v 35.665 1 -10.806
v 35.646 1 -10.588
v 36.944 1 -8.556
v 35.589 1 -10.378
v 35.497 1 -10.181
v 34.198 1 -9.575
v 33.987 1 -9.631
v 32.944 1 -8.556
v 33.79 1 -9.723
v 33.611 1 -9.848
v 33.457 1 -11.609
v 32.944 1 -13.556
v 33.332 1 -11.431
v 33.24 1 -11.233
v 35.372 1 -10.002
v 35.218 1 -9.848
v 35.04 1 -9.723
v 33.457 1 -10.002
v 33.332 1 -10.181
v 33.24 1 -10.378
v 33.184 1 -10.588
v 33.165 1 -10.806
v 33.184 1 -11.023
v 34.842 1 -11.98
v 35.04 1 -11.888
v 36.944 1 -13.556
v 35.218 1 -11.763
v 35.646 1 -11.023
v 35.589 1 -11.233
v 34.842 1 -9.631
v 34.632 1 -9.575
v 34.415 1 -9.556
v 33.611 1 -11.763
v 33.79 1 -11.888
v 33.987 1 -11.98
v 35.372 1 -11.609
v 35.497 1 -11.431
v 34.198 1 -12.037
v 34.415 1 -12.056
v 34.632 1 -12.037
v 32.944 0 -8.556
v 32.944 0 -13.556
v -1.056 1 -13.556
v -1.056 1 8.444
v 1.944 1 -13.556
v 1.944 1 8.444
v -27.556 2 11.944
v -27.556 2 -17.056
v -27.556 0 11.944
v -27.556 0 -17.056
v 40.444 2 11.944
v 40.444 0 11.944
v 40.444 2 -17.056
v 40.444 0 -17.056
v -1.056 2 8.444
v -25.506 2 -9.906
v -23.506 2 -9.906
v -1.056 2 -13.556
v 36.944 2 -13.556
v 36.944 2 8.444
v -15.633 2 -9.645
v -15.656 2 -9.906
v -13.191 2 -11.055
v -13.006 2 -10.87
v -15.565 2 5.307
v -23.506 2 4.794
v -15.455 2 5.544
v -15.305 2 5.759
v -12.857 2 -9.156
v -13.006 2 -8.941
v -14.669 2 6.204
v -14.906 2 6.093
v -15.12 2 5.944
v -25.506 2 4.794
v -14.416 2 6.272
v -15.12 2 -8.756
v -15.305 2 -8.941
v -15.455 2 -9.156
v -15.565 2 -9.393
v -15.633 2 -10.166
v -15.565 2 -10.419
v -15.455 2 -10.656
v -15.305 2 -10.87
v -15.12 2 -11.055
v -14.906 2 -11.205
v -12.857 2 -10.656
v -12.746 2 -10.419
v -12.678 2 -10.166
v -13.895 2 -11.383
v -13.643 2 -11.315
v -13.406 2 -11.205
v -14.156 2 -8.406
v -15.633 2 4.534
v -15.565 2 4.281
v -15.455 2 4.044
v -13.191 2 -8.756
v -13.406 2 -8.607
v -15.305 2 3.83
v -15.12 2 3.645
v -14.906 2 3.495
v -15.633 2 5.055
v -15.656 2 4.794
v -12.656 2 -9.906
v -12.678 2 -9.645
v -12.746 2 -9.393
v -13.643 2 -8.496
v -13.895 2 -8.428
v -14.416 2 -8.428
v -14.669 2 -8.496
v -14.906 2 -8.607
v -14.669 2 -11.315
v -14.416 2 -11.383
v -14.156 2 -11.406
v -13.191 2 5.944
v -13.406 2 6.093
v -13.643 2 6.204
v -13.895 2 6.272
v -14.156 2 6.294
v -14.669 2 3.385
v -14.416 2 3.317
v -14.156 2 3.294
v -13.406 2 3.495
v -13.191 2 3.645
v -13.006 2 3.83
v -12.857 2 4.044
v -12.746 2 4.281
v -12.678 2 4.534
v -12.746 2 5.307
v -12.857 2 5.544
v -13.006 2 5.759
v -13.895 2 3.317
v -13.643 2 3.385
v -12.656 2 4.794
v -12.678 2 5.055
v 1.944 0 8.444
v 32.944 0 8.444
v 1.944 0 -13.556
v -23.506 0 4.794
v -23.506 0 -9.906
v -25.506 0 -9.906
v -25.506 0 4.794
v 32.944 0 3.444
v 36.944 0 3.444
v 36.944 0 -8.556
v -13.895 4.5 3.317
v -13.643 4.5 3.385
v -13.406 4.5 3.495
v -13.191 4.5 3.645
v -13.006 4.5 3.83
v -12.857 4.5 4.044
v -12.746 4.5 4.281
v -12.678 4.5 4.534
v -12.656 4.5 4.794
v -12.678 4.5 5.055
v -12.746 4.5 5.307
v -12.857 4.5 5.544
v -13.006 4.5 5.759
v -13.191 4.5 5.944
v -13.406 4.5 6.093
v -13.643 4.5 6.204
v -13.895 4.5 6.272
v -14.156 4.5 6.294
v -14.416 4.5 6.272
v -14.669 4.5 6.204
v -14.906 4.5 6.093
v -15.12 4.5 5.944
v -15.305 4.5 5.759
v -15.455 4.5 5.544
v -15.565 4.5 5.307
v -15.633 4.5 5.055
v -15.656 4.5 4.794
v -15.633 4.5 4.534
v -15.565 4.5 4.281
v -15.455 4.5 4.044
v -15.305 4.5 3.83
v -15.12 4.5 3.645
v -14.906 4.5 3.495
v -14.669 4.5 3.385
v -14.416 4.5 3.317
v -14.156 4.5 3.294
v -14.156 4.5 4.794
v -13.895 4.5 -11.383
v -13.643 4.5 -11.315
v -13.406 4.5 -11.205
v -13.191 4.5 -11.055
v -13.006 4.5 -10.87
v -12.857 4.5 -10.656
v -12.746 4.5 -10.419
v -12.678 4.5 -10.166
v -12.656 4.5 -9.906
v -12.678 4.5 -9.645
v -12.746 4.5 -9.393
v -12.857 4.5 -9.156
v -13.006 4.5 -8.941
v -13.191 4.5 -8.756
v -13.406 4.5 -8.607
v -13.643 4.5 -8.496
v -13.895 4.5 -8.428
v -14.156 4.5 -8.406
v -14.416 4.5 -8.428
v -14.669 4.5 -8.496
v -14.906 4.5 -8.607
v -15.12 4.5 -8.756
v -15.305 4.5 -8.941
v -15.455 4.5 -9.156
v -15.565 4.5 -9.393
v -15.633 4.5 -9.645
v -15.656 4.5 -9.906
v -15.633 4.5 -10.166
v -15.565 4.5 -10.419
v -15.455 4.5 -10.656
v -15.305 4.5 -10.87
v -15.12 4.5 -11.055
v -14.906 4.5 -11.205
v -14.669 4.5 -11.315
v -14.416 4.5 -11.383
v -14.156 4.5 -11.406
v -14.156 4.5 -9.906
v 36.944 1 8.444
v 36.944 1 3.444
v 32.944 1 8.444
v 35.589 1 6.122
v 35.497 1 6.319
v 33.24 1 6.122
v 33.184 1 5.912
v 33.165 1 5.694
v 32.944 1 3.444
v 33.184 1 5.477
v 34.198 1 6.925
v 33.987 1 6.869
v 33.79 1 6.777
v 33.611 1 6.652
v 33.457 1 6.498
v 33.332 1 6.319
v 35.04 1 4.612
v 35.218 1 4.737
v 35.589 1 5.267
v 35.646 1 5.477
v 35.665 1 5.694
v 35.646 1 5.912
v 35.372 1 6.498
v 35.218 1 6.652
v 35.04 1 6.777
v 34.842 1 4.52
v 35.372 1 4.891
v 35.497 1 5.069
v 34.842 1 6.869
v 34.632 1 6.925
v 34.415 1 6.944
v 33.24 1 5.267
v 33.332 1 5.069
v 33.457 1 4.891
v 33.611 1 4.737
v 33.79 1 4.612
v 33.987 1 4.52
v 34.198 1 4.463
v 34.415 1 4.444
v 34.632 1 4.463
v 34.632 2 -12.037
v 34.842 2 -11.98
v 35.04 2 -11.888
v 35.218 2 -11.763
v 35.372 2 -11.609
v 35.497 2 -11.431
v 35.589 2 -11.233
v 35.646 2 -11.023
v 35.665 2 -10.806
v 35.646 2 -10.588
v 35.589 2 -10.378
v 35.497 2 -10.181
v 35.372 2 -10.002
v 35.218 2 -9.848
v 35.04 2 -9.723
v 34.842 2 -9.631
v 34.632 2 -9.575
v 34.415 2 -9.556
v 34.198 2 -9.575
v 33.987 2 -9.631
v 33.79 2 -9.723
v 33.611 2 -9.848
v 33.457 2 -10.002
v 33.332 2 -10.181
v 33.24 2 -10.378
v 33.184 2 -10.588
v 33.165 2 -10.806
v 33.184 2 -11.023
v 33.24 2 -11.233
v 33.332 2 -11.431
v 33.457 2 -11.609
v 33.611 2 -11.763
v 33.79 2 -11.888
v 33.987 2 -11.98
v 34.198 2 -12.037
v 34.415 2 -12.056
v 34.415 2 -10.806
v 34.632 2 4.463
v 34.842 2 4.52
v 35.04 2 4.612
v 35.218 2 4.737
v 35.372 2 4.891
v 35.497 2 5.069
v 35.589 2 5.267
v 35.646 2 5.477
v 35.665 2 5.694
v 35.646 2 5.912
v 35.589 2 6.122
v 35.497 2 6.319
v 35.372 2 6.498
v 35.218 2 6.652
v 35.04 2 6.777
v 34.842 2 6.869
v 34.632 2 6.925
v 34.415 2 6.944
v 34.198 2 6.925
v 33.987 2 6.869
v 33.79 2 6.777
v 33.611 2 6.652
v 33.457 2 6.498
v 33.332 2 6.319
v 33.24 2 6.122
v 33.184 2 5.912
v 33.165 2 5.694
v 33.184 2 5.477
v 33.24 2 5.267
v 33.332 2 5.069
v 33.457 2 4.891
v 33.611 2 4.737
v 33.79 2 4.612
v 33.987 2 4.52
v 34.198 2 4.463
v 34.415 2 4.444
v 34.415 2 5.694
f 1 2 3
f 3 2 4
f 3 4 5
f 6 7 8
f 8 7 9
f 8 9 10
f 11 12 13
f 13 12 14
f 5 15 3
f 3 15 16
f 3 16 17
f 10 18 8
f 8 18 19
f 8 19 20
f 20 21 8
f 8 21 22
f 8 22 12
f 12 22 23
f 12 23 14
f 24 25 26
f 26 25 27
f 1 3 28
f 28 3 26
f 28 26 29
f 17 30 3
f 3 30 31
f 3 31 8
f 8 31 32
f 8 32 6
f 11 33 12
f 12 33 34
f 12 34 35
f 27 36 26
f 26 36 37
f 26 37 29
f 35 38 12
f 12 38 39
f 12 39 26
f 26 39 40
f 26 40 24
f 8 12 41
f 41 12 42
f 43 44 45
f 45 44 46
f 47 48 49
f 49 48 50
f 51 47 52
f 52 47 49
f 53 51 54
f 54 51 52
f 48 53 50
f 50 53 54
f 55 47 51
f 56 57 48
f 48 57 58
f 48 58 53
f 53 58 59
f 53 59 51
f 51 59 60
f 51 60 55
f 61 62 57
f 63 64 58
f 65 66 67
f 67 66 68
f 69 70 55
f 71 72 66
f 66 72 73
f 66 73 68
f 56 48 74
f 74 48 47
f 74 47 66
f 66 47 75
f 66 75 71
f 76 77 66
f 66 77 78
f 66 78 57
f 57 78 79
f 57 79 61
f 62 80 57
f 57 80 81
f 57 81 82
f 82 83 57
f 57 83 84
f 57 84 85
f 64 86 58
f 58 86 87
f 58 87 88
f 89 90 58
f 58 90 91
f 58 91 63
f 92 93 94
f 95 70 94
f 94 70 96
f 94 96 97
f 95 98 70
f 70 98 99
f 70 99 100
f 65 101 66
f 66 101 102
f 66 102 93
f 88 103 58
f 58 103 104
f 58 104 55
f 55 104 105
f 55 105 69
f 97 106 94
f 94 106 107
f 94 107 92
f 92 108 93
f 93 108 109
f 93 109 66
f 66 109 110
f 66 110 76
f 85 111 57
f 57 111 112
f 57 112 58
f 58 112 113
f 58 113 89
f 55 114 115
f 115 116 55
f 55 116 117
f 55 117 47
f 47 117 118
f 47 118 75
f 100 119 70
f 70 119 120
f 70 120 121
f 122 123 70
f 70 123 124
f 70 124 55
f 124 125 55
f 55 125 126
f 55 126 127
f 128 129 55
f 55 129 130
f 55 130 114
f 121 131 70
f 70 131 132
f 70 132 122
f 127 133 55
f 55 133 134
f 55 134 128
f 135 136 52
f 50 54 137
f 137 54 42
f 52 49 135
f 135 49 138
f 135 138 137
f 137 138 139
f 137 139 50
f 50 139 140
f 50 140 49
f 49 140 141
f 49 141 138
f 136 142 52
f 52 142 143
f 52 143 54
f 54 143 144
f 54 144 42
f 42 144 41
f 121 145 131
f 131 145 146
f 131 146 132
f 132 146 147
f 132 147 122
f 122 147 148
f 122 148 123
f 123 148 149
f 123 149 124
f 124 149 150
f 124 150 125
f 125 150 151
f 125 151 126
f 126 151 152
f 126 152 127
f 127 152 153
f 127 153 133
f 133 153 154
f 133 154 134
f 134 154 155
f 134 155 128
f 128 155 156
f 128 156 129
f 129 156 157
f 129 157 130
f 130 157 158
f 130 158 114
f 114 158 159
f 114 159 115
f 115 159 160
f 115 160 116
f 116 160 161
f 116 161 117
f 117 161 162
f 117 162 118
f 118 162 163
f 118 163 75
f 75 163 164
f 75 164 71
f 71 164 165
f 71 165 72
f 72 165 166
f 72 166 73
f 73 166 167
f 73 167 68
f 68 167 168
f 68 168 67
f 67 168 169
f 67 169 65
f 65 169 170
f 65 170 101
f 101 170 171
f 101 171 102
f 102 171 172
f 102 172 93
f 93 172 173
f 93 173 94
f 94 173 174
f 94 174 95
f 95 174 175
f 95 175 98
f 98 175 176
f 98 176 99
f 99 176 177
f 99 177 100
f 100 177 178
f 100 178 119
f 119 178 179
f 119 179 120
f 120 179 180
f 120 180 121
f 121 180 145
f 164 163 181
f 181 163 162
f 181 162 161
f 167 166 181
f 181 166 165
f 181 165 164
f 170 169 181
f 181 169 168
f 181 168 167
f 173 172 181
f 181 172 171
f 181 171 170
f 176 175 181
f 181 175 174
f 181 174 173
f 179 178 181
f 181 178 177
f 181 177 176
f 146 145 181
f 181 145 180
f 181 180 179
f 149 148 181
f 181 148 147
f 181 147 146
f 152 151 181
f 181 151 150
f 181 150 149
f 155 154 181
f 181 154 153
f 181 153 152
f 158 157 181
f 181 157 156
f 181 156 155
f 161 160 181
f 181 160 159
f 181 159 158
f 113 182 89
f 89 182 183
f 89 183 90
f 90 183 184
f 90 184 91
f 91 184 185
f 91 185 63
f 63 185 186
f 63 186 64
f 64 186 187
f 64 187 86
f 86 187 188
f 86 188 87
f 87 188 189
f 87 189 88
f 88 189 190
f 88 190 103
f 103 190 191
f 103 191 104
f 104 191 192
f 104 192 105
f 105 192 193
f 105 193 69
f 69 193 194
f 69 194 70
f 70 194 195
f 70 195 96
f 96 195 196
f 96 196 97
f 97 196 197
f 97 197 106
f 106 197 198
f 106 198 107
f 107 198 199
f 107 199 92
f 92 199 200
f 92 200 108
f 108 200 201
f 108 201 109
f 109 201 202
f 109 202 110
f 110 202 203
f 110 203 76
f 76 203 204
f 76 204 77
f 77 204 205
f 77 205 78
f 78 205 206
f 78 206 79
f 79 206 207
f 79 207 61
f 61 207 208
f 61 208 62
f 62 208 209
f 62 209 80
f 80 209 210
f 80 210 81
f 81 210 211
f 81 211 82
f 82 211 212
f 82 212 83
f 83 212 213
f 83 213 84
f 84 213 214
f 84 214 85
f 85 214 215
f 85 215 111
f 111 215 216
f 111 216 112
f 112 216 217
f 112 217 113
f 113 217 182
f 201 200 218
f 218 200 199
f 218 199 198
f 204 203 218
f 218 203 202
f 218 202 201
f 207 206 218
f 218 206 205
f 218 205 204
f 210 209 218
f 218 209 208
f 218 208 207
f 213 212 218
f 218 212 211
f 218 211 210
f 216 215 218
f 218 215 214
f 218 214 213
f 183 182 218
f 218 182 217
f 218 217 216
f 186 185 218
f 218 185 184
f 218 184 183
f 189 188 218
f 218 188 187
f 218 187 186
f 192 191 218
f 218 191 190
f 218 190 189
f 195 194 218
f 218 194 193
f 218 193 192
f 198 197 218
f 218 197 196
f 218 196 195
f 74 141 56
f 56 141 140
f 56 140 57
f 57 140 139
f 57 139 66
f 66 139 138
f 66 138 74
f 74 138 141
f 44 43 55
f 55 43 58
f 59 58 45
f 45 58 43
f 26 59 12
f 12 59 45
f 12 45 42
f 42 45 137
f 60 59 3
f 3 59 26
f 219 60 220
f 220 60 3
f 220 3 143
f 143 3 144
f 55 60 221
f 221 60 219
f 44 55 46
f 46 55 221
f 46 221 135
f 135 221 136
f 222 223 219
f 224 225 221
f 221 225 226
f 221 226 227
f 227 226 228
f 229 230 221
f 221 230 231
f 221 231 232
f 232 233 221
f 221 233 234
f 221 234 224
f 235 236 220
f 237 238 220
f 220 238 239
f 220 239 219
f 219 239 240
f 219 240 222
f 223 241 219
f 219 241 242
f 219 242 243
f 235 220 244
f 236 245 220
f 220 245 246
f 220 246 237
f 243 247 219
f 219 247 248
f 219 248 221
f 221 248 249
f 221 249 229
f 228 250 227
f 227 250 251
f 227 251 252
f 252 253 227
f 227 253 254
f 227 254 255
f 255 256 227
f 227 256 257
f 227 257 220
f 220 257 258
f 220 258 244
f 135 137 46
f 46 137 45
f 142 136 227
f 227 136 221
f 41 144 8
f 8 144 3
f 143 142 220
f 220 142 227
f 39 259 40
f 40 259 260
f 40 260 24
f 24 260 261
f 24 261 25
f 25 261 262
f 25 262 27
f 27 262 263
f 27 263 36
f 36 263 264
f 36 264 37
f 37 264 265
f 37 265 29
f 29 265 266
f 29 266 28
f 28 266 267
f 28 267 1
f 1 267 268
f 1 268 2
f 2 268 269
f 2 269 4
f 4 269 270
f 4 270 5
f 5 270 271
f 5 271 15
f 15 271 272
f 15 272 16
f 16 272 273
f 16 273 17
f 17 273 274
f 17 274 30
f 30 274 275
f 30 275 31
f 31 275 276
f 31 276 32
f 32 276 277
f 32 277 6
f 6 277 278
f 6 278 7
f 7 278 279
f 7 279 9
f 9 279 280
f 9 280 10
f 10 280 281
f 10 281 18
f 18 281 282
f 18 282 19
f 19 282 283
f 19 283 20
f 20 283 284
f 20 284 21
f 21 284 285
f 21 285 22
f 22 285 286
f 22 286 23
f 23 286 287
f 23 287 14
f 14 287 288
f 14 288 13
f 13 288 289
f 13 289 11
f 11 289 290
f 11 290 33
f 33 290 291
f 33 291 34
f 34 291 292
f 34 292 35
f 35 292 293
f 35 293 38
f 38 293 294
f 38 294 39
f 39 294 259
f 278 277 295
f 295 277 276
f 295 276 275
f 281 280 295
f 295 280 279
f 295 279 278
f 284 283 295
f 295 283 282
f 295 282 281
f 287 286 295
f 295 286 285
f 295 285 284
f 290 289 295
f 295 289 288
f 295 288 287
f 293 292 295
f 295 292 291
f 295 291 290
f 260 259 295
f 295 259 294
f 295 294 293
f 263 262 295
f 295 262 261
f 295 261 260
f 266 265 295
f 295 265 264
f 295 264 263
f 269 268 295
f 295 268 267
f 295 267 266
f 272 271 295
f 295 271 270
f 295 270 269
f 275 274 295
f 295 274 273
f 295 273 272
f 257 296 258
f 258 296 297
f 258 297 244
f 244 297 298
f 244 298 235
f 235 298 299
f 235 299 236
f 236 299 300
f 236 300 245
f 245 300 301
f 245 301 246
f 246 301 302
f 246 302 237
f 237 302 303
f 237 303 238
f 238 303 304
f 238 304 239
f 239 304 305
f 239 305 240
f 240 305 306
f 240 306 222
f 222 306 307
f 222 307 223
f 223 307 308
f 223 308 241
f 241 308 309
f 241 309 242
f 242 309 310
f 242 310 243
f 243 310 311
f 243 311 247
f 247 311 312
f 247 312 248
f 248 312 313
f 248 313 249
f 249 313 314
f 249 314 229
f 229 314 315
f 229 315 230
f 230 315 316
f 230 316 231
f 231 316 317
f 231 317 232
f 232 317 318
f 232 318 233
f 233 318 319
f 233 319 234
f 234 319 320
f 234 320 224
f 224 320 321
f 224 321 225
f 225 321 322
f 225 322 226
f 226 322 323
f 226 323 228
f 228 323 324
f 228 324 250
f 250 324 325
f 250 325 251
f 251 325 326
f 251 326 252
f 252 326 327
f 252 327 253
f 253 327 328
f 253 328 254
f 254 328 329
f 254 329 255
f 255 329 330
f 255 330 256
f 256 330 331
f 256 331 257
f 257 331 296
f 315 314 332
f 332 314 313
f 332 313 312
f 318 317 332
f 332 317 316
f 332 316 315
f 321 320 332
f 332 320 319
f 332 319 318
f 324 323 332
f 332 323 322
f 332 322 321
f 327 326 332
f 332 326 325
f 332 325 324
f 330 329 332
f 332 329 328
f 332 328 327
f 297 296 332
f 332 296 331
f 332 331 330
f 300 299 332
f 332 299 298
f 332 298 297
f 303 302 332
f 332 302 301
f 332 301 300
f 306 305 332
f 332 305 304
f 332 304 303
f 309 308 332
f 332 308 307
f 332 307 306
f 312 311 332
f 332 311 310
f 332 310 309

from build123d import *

# Parameters (mm, degrees)
SKETCH1_W             = 68
SKETCH1_H             = 29
BASE_DEPTH            = 2
SKETCH2_R             = 1.5
LEFT_PEG_DEPTH        = 2.5
SKETCH3_R             = 1.5
RIGHT_PEG_DEPTH       = 2.5
SKETCH4_W             = 2
SKETCH4_H             = 14.7
ACCEL_WIRE_HOLE_DEPTH = 2.5
SKETCH5_W             = 38
SKETCH5_H             = 22
OUTER_CUT_DEPTH       = 1
SKETCH6_W             = 31
SKETCH6_H             = 22
INNER_CUT_DEPTH       = 1
SKETCH7_W             = 4
SKETCH7_H             = 12
BETWEEN_PEG_CUT_DEPTH = 1
SKETCH8_R             = 1.25
PEGS_DEPTH            = 1


with BuildPart() as part:
    # Sketch1 → base (new body)
    with BuildSketch(Plane(origin=(0, 0, 0), x_dir=(1, 0, 0), z_dir=(0, 1, 0))):
        with Locations((6.444444444, 2.555555556)):
            Rectangle(SKETCH1_W, SKETCH1_H)
    extrude(amount=BASE_DEPTH)

    # Sketch2 → left peg (add)
    with BuildSketch(Plane(origin=(0, 2, 0), x_dir=(1, 0, 0), z_dir=(0, 1, 0))):
        with Locations(Location((-14.155555556, -4.794444444, 0), (0, 0, 270))):
            Circle(SKETCH2_R)
    extrude(amount=LEFT_PEG_DEPTH)

    # Sketch3 → right peg (add)
    with BuildSketch(Plane(origin=(0, 2, 0), x_dir=(1, 0, 0), z_dir=(0, 1, 0))):
        with Locations(Location((-14.155555556, 9.905555556, 0), (0, 0, 270))):
            Circle(SKETCH3_R)
    extrude(amount=RIGHT_PEG_DEPTH)

    # Sketch4 → accel wire hole (cut)
    with BuildSketch(Plane(origin=(0, 2, 0), x_dir=(1, 0, 0), z_dir=(0, 1, 0))):
        with Locations((-24.505555556, 2.555555556)):
            Rectangle(SKETCH4_W, SKETCH4_H)
    extrude(amount=-ACCEL_WIRE_HOLE_DEPTH, mode=Mode.SUBTRACT)

    # Sketch5 → outer cut (cut)
    with BuildSketch(Plane(origin=(0, 2, 0), x_dir=(1, 0, 0), z_dir=(0, 1, 0))):
        with Locations((17.944444444, 2.555555556)):
            Rectangle(SKETCH5_W, SKETCH5_H)
    extrude(amount=-OUTER_CUT_DEPTH, mode=Mode.SUBTRACT)

    # Sketch6 → inner cut (cut)
    with BuildSketch(Plane(origin=(0, 1, 0), x_dir=(1, 0, 0), z_dir=(0, 1, 0))):
        with Locations((17.444444444, 2.555555556)):
            Rectangle(SKETCH6_W, SKETCH6_H)
    extrude(amount=-INNER_CUT_DEPTH, mode=Mode.SUBTRACT)

    # Sketch7 → between peg cut (cut)
    with BuildSketch(Plane(origin=(0, 1, 0), x_dir=(1, 0, 0), z_dir=(0, 1, 0))):
        with Locations((34.944444444, 2.555555556)):
            Rectangle(SKETCH7_W, SKETCH7_H)
    extrude(amount=-BETWEEN_PEG_CUT_DEPTH, mode=Mode.SUBTRACT)

    # Sketch8 → pegs (add)
    with BuildSketch(Plane(origin=(0, 1, 0), x_dir=(1, 0, 0), z_dir=(0, 1, 0))):
        with Locations(Location((34.414871673, 10.805555556, 0), (0, 0, 270))):
            Circle(SKETCH8_R)
        with Locations(Location((34.414871673, -5.694444444, 0), (0, 0, 270))):
            Circle(SKETCH8_R)
    extrude(amount=PEGS_DEPTH)


solid = part.part
